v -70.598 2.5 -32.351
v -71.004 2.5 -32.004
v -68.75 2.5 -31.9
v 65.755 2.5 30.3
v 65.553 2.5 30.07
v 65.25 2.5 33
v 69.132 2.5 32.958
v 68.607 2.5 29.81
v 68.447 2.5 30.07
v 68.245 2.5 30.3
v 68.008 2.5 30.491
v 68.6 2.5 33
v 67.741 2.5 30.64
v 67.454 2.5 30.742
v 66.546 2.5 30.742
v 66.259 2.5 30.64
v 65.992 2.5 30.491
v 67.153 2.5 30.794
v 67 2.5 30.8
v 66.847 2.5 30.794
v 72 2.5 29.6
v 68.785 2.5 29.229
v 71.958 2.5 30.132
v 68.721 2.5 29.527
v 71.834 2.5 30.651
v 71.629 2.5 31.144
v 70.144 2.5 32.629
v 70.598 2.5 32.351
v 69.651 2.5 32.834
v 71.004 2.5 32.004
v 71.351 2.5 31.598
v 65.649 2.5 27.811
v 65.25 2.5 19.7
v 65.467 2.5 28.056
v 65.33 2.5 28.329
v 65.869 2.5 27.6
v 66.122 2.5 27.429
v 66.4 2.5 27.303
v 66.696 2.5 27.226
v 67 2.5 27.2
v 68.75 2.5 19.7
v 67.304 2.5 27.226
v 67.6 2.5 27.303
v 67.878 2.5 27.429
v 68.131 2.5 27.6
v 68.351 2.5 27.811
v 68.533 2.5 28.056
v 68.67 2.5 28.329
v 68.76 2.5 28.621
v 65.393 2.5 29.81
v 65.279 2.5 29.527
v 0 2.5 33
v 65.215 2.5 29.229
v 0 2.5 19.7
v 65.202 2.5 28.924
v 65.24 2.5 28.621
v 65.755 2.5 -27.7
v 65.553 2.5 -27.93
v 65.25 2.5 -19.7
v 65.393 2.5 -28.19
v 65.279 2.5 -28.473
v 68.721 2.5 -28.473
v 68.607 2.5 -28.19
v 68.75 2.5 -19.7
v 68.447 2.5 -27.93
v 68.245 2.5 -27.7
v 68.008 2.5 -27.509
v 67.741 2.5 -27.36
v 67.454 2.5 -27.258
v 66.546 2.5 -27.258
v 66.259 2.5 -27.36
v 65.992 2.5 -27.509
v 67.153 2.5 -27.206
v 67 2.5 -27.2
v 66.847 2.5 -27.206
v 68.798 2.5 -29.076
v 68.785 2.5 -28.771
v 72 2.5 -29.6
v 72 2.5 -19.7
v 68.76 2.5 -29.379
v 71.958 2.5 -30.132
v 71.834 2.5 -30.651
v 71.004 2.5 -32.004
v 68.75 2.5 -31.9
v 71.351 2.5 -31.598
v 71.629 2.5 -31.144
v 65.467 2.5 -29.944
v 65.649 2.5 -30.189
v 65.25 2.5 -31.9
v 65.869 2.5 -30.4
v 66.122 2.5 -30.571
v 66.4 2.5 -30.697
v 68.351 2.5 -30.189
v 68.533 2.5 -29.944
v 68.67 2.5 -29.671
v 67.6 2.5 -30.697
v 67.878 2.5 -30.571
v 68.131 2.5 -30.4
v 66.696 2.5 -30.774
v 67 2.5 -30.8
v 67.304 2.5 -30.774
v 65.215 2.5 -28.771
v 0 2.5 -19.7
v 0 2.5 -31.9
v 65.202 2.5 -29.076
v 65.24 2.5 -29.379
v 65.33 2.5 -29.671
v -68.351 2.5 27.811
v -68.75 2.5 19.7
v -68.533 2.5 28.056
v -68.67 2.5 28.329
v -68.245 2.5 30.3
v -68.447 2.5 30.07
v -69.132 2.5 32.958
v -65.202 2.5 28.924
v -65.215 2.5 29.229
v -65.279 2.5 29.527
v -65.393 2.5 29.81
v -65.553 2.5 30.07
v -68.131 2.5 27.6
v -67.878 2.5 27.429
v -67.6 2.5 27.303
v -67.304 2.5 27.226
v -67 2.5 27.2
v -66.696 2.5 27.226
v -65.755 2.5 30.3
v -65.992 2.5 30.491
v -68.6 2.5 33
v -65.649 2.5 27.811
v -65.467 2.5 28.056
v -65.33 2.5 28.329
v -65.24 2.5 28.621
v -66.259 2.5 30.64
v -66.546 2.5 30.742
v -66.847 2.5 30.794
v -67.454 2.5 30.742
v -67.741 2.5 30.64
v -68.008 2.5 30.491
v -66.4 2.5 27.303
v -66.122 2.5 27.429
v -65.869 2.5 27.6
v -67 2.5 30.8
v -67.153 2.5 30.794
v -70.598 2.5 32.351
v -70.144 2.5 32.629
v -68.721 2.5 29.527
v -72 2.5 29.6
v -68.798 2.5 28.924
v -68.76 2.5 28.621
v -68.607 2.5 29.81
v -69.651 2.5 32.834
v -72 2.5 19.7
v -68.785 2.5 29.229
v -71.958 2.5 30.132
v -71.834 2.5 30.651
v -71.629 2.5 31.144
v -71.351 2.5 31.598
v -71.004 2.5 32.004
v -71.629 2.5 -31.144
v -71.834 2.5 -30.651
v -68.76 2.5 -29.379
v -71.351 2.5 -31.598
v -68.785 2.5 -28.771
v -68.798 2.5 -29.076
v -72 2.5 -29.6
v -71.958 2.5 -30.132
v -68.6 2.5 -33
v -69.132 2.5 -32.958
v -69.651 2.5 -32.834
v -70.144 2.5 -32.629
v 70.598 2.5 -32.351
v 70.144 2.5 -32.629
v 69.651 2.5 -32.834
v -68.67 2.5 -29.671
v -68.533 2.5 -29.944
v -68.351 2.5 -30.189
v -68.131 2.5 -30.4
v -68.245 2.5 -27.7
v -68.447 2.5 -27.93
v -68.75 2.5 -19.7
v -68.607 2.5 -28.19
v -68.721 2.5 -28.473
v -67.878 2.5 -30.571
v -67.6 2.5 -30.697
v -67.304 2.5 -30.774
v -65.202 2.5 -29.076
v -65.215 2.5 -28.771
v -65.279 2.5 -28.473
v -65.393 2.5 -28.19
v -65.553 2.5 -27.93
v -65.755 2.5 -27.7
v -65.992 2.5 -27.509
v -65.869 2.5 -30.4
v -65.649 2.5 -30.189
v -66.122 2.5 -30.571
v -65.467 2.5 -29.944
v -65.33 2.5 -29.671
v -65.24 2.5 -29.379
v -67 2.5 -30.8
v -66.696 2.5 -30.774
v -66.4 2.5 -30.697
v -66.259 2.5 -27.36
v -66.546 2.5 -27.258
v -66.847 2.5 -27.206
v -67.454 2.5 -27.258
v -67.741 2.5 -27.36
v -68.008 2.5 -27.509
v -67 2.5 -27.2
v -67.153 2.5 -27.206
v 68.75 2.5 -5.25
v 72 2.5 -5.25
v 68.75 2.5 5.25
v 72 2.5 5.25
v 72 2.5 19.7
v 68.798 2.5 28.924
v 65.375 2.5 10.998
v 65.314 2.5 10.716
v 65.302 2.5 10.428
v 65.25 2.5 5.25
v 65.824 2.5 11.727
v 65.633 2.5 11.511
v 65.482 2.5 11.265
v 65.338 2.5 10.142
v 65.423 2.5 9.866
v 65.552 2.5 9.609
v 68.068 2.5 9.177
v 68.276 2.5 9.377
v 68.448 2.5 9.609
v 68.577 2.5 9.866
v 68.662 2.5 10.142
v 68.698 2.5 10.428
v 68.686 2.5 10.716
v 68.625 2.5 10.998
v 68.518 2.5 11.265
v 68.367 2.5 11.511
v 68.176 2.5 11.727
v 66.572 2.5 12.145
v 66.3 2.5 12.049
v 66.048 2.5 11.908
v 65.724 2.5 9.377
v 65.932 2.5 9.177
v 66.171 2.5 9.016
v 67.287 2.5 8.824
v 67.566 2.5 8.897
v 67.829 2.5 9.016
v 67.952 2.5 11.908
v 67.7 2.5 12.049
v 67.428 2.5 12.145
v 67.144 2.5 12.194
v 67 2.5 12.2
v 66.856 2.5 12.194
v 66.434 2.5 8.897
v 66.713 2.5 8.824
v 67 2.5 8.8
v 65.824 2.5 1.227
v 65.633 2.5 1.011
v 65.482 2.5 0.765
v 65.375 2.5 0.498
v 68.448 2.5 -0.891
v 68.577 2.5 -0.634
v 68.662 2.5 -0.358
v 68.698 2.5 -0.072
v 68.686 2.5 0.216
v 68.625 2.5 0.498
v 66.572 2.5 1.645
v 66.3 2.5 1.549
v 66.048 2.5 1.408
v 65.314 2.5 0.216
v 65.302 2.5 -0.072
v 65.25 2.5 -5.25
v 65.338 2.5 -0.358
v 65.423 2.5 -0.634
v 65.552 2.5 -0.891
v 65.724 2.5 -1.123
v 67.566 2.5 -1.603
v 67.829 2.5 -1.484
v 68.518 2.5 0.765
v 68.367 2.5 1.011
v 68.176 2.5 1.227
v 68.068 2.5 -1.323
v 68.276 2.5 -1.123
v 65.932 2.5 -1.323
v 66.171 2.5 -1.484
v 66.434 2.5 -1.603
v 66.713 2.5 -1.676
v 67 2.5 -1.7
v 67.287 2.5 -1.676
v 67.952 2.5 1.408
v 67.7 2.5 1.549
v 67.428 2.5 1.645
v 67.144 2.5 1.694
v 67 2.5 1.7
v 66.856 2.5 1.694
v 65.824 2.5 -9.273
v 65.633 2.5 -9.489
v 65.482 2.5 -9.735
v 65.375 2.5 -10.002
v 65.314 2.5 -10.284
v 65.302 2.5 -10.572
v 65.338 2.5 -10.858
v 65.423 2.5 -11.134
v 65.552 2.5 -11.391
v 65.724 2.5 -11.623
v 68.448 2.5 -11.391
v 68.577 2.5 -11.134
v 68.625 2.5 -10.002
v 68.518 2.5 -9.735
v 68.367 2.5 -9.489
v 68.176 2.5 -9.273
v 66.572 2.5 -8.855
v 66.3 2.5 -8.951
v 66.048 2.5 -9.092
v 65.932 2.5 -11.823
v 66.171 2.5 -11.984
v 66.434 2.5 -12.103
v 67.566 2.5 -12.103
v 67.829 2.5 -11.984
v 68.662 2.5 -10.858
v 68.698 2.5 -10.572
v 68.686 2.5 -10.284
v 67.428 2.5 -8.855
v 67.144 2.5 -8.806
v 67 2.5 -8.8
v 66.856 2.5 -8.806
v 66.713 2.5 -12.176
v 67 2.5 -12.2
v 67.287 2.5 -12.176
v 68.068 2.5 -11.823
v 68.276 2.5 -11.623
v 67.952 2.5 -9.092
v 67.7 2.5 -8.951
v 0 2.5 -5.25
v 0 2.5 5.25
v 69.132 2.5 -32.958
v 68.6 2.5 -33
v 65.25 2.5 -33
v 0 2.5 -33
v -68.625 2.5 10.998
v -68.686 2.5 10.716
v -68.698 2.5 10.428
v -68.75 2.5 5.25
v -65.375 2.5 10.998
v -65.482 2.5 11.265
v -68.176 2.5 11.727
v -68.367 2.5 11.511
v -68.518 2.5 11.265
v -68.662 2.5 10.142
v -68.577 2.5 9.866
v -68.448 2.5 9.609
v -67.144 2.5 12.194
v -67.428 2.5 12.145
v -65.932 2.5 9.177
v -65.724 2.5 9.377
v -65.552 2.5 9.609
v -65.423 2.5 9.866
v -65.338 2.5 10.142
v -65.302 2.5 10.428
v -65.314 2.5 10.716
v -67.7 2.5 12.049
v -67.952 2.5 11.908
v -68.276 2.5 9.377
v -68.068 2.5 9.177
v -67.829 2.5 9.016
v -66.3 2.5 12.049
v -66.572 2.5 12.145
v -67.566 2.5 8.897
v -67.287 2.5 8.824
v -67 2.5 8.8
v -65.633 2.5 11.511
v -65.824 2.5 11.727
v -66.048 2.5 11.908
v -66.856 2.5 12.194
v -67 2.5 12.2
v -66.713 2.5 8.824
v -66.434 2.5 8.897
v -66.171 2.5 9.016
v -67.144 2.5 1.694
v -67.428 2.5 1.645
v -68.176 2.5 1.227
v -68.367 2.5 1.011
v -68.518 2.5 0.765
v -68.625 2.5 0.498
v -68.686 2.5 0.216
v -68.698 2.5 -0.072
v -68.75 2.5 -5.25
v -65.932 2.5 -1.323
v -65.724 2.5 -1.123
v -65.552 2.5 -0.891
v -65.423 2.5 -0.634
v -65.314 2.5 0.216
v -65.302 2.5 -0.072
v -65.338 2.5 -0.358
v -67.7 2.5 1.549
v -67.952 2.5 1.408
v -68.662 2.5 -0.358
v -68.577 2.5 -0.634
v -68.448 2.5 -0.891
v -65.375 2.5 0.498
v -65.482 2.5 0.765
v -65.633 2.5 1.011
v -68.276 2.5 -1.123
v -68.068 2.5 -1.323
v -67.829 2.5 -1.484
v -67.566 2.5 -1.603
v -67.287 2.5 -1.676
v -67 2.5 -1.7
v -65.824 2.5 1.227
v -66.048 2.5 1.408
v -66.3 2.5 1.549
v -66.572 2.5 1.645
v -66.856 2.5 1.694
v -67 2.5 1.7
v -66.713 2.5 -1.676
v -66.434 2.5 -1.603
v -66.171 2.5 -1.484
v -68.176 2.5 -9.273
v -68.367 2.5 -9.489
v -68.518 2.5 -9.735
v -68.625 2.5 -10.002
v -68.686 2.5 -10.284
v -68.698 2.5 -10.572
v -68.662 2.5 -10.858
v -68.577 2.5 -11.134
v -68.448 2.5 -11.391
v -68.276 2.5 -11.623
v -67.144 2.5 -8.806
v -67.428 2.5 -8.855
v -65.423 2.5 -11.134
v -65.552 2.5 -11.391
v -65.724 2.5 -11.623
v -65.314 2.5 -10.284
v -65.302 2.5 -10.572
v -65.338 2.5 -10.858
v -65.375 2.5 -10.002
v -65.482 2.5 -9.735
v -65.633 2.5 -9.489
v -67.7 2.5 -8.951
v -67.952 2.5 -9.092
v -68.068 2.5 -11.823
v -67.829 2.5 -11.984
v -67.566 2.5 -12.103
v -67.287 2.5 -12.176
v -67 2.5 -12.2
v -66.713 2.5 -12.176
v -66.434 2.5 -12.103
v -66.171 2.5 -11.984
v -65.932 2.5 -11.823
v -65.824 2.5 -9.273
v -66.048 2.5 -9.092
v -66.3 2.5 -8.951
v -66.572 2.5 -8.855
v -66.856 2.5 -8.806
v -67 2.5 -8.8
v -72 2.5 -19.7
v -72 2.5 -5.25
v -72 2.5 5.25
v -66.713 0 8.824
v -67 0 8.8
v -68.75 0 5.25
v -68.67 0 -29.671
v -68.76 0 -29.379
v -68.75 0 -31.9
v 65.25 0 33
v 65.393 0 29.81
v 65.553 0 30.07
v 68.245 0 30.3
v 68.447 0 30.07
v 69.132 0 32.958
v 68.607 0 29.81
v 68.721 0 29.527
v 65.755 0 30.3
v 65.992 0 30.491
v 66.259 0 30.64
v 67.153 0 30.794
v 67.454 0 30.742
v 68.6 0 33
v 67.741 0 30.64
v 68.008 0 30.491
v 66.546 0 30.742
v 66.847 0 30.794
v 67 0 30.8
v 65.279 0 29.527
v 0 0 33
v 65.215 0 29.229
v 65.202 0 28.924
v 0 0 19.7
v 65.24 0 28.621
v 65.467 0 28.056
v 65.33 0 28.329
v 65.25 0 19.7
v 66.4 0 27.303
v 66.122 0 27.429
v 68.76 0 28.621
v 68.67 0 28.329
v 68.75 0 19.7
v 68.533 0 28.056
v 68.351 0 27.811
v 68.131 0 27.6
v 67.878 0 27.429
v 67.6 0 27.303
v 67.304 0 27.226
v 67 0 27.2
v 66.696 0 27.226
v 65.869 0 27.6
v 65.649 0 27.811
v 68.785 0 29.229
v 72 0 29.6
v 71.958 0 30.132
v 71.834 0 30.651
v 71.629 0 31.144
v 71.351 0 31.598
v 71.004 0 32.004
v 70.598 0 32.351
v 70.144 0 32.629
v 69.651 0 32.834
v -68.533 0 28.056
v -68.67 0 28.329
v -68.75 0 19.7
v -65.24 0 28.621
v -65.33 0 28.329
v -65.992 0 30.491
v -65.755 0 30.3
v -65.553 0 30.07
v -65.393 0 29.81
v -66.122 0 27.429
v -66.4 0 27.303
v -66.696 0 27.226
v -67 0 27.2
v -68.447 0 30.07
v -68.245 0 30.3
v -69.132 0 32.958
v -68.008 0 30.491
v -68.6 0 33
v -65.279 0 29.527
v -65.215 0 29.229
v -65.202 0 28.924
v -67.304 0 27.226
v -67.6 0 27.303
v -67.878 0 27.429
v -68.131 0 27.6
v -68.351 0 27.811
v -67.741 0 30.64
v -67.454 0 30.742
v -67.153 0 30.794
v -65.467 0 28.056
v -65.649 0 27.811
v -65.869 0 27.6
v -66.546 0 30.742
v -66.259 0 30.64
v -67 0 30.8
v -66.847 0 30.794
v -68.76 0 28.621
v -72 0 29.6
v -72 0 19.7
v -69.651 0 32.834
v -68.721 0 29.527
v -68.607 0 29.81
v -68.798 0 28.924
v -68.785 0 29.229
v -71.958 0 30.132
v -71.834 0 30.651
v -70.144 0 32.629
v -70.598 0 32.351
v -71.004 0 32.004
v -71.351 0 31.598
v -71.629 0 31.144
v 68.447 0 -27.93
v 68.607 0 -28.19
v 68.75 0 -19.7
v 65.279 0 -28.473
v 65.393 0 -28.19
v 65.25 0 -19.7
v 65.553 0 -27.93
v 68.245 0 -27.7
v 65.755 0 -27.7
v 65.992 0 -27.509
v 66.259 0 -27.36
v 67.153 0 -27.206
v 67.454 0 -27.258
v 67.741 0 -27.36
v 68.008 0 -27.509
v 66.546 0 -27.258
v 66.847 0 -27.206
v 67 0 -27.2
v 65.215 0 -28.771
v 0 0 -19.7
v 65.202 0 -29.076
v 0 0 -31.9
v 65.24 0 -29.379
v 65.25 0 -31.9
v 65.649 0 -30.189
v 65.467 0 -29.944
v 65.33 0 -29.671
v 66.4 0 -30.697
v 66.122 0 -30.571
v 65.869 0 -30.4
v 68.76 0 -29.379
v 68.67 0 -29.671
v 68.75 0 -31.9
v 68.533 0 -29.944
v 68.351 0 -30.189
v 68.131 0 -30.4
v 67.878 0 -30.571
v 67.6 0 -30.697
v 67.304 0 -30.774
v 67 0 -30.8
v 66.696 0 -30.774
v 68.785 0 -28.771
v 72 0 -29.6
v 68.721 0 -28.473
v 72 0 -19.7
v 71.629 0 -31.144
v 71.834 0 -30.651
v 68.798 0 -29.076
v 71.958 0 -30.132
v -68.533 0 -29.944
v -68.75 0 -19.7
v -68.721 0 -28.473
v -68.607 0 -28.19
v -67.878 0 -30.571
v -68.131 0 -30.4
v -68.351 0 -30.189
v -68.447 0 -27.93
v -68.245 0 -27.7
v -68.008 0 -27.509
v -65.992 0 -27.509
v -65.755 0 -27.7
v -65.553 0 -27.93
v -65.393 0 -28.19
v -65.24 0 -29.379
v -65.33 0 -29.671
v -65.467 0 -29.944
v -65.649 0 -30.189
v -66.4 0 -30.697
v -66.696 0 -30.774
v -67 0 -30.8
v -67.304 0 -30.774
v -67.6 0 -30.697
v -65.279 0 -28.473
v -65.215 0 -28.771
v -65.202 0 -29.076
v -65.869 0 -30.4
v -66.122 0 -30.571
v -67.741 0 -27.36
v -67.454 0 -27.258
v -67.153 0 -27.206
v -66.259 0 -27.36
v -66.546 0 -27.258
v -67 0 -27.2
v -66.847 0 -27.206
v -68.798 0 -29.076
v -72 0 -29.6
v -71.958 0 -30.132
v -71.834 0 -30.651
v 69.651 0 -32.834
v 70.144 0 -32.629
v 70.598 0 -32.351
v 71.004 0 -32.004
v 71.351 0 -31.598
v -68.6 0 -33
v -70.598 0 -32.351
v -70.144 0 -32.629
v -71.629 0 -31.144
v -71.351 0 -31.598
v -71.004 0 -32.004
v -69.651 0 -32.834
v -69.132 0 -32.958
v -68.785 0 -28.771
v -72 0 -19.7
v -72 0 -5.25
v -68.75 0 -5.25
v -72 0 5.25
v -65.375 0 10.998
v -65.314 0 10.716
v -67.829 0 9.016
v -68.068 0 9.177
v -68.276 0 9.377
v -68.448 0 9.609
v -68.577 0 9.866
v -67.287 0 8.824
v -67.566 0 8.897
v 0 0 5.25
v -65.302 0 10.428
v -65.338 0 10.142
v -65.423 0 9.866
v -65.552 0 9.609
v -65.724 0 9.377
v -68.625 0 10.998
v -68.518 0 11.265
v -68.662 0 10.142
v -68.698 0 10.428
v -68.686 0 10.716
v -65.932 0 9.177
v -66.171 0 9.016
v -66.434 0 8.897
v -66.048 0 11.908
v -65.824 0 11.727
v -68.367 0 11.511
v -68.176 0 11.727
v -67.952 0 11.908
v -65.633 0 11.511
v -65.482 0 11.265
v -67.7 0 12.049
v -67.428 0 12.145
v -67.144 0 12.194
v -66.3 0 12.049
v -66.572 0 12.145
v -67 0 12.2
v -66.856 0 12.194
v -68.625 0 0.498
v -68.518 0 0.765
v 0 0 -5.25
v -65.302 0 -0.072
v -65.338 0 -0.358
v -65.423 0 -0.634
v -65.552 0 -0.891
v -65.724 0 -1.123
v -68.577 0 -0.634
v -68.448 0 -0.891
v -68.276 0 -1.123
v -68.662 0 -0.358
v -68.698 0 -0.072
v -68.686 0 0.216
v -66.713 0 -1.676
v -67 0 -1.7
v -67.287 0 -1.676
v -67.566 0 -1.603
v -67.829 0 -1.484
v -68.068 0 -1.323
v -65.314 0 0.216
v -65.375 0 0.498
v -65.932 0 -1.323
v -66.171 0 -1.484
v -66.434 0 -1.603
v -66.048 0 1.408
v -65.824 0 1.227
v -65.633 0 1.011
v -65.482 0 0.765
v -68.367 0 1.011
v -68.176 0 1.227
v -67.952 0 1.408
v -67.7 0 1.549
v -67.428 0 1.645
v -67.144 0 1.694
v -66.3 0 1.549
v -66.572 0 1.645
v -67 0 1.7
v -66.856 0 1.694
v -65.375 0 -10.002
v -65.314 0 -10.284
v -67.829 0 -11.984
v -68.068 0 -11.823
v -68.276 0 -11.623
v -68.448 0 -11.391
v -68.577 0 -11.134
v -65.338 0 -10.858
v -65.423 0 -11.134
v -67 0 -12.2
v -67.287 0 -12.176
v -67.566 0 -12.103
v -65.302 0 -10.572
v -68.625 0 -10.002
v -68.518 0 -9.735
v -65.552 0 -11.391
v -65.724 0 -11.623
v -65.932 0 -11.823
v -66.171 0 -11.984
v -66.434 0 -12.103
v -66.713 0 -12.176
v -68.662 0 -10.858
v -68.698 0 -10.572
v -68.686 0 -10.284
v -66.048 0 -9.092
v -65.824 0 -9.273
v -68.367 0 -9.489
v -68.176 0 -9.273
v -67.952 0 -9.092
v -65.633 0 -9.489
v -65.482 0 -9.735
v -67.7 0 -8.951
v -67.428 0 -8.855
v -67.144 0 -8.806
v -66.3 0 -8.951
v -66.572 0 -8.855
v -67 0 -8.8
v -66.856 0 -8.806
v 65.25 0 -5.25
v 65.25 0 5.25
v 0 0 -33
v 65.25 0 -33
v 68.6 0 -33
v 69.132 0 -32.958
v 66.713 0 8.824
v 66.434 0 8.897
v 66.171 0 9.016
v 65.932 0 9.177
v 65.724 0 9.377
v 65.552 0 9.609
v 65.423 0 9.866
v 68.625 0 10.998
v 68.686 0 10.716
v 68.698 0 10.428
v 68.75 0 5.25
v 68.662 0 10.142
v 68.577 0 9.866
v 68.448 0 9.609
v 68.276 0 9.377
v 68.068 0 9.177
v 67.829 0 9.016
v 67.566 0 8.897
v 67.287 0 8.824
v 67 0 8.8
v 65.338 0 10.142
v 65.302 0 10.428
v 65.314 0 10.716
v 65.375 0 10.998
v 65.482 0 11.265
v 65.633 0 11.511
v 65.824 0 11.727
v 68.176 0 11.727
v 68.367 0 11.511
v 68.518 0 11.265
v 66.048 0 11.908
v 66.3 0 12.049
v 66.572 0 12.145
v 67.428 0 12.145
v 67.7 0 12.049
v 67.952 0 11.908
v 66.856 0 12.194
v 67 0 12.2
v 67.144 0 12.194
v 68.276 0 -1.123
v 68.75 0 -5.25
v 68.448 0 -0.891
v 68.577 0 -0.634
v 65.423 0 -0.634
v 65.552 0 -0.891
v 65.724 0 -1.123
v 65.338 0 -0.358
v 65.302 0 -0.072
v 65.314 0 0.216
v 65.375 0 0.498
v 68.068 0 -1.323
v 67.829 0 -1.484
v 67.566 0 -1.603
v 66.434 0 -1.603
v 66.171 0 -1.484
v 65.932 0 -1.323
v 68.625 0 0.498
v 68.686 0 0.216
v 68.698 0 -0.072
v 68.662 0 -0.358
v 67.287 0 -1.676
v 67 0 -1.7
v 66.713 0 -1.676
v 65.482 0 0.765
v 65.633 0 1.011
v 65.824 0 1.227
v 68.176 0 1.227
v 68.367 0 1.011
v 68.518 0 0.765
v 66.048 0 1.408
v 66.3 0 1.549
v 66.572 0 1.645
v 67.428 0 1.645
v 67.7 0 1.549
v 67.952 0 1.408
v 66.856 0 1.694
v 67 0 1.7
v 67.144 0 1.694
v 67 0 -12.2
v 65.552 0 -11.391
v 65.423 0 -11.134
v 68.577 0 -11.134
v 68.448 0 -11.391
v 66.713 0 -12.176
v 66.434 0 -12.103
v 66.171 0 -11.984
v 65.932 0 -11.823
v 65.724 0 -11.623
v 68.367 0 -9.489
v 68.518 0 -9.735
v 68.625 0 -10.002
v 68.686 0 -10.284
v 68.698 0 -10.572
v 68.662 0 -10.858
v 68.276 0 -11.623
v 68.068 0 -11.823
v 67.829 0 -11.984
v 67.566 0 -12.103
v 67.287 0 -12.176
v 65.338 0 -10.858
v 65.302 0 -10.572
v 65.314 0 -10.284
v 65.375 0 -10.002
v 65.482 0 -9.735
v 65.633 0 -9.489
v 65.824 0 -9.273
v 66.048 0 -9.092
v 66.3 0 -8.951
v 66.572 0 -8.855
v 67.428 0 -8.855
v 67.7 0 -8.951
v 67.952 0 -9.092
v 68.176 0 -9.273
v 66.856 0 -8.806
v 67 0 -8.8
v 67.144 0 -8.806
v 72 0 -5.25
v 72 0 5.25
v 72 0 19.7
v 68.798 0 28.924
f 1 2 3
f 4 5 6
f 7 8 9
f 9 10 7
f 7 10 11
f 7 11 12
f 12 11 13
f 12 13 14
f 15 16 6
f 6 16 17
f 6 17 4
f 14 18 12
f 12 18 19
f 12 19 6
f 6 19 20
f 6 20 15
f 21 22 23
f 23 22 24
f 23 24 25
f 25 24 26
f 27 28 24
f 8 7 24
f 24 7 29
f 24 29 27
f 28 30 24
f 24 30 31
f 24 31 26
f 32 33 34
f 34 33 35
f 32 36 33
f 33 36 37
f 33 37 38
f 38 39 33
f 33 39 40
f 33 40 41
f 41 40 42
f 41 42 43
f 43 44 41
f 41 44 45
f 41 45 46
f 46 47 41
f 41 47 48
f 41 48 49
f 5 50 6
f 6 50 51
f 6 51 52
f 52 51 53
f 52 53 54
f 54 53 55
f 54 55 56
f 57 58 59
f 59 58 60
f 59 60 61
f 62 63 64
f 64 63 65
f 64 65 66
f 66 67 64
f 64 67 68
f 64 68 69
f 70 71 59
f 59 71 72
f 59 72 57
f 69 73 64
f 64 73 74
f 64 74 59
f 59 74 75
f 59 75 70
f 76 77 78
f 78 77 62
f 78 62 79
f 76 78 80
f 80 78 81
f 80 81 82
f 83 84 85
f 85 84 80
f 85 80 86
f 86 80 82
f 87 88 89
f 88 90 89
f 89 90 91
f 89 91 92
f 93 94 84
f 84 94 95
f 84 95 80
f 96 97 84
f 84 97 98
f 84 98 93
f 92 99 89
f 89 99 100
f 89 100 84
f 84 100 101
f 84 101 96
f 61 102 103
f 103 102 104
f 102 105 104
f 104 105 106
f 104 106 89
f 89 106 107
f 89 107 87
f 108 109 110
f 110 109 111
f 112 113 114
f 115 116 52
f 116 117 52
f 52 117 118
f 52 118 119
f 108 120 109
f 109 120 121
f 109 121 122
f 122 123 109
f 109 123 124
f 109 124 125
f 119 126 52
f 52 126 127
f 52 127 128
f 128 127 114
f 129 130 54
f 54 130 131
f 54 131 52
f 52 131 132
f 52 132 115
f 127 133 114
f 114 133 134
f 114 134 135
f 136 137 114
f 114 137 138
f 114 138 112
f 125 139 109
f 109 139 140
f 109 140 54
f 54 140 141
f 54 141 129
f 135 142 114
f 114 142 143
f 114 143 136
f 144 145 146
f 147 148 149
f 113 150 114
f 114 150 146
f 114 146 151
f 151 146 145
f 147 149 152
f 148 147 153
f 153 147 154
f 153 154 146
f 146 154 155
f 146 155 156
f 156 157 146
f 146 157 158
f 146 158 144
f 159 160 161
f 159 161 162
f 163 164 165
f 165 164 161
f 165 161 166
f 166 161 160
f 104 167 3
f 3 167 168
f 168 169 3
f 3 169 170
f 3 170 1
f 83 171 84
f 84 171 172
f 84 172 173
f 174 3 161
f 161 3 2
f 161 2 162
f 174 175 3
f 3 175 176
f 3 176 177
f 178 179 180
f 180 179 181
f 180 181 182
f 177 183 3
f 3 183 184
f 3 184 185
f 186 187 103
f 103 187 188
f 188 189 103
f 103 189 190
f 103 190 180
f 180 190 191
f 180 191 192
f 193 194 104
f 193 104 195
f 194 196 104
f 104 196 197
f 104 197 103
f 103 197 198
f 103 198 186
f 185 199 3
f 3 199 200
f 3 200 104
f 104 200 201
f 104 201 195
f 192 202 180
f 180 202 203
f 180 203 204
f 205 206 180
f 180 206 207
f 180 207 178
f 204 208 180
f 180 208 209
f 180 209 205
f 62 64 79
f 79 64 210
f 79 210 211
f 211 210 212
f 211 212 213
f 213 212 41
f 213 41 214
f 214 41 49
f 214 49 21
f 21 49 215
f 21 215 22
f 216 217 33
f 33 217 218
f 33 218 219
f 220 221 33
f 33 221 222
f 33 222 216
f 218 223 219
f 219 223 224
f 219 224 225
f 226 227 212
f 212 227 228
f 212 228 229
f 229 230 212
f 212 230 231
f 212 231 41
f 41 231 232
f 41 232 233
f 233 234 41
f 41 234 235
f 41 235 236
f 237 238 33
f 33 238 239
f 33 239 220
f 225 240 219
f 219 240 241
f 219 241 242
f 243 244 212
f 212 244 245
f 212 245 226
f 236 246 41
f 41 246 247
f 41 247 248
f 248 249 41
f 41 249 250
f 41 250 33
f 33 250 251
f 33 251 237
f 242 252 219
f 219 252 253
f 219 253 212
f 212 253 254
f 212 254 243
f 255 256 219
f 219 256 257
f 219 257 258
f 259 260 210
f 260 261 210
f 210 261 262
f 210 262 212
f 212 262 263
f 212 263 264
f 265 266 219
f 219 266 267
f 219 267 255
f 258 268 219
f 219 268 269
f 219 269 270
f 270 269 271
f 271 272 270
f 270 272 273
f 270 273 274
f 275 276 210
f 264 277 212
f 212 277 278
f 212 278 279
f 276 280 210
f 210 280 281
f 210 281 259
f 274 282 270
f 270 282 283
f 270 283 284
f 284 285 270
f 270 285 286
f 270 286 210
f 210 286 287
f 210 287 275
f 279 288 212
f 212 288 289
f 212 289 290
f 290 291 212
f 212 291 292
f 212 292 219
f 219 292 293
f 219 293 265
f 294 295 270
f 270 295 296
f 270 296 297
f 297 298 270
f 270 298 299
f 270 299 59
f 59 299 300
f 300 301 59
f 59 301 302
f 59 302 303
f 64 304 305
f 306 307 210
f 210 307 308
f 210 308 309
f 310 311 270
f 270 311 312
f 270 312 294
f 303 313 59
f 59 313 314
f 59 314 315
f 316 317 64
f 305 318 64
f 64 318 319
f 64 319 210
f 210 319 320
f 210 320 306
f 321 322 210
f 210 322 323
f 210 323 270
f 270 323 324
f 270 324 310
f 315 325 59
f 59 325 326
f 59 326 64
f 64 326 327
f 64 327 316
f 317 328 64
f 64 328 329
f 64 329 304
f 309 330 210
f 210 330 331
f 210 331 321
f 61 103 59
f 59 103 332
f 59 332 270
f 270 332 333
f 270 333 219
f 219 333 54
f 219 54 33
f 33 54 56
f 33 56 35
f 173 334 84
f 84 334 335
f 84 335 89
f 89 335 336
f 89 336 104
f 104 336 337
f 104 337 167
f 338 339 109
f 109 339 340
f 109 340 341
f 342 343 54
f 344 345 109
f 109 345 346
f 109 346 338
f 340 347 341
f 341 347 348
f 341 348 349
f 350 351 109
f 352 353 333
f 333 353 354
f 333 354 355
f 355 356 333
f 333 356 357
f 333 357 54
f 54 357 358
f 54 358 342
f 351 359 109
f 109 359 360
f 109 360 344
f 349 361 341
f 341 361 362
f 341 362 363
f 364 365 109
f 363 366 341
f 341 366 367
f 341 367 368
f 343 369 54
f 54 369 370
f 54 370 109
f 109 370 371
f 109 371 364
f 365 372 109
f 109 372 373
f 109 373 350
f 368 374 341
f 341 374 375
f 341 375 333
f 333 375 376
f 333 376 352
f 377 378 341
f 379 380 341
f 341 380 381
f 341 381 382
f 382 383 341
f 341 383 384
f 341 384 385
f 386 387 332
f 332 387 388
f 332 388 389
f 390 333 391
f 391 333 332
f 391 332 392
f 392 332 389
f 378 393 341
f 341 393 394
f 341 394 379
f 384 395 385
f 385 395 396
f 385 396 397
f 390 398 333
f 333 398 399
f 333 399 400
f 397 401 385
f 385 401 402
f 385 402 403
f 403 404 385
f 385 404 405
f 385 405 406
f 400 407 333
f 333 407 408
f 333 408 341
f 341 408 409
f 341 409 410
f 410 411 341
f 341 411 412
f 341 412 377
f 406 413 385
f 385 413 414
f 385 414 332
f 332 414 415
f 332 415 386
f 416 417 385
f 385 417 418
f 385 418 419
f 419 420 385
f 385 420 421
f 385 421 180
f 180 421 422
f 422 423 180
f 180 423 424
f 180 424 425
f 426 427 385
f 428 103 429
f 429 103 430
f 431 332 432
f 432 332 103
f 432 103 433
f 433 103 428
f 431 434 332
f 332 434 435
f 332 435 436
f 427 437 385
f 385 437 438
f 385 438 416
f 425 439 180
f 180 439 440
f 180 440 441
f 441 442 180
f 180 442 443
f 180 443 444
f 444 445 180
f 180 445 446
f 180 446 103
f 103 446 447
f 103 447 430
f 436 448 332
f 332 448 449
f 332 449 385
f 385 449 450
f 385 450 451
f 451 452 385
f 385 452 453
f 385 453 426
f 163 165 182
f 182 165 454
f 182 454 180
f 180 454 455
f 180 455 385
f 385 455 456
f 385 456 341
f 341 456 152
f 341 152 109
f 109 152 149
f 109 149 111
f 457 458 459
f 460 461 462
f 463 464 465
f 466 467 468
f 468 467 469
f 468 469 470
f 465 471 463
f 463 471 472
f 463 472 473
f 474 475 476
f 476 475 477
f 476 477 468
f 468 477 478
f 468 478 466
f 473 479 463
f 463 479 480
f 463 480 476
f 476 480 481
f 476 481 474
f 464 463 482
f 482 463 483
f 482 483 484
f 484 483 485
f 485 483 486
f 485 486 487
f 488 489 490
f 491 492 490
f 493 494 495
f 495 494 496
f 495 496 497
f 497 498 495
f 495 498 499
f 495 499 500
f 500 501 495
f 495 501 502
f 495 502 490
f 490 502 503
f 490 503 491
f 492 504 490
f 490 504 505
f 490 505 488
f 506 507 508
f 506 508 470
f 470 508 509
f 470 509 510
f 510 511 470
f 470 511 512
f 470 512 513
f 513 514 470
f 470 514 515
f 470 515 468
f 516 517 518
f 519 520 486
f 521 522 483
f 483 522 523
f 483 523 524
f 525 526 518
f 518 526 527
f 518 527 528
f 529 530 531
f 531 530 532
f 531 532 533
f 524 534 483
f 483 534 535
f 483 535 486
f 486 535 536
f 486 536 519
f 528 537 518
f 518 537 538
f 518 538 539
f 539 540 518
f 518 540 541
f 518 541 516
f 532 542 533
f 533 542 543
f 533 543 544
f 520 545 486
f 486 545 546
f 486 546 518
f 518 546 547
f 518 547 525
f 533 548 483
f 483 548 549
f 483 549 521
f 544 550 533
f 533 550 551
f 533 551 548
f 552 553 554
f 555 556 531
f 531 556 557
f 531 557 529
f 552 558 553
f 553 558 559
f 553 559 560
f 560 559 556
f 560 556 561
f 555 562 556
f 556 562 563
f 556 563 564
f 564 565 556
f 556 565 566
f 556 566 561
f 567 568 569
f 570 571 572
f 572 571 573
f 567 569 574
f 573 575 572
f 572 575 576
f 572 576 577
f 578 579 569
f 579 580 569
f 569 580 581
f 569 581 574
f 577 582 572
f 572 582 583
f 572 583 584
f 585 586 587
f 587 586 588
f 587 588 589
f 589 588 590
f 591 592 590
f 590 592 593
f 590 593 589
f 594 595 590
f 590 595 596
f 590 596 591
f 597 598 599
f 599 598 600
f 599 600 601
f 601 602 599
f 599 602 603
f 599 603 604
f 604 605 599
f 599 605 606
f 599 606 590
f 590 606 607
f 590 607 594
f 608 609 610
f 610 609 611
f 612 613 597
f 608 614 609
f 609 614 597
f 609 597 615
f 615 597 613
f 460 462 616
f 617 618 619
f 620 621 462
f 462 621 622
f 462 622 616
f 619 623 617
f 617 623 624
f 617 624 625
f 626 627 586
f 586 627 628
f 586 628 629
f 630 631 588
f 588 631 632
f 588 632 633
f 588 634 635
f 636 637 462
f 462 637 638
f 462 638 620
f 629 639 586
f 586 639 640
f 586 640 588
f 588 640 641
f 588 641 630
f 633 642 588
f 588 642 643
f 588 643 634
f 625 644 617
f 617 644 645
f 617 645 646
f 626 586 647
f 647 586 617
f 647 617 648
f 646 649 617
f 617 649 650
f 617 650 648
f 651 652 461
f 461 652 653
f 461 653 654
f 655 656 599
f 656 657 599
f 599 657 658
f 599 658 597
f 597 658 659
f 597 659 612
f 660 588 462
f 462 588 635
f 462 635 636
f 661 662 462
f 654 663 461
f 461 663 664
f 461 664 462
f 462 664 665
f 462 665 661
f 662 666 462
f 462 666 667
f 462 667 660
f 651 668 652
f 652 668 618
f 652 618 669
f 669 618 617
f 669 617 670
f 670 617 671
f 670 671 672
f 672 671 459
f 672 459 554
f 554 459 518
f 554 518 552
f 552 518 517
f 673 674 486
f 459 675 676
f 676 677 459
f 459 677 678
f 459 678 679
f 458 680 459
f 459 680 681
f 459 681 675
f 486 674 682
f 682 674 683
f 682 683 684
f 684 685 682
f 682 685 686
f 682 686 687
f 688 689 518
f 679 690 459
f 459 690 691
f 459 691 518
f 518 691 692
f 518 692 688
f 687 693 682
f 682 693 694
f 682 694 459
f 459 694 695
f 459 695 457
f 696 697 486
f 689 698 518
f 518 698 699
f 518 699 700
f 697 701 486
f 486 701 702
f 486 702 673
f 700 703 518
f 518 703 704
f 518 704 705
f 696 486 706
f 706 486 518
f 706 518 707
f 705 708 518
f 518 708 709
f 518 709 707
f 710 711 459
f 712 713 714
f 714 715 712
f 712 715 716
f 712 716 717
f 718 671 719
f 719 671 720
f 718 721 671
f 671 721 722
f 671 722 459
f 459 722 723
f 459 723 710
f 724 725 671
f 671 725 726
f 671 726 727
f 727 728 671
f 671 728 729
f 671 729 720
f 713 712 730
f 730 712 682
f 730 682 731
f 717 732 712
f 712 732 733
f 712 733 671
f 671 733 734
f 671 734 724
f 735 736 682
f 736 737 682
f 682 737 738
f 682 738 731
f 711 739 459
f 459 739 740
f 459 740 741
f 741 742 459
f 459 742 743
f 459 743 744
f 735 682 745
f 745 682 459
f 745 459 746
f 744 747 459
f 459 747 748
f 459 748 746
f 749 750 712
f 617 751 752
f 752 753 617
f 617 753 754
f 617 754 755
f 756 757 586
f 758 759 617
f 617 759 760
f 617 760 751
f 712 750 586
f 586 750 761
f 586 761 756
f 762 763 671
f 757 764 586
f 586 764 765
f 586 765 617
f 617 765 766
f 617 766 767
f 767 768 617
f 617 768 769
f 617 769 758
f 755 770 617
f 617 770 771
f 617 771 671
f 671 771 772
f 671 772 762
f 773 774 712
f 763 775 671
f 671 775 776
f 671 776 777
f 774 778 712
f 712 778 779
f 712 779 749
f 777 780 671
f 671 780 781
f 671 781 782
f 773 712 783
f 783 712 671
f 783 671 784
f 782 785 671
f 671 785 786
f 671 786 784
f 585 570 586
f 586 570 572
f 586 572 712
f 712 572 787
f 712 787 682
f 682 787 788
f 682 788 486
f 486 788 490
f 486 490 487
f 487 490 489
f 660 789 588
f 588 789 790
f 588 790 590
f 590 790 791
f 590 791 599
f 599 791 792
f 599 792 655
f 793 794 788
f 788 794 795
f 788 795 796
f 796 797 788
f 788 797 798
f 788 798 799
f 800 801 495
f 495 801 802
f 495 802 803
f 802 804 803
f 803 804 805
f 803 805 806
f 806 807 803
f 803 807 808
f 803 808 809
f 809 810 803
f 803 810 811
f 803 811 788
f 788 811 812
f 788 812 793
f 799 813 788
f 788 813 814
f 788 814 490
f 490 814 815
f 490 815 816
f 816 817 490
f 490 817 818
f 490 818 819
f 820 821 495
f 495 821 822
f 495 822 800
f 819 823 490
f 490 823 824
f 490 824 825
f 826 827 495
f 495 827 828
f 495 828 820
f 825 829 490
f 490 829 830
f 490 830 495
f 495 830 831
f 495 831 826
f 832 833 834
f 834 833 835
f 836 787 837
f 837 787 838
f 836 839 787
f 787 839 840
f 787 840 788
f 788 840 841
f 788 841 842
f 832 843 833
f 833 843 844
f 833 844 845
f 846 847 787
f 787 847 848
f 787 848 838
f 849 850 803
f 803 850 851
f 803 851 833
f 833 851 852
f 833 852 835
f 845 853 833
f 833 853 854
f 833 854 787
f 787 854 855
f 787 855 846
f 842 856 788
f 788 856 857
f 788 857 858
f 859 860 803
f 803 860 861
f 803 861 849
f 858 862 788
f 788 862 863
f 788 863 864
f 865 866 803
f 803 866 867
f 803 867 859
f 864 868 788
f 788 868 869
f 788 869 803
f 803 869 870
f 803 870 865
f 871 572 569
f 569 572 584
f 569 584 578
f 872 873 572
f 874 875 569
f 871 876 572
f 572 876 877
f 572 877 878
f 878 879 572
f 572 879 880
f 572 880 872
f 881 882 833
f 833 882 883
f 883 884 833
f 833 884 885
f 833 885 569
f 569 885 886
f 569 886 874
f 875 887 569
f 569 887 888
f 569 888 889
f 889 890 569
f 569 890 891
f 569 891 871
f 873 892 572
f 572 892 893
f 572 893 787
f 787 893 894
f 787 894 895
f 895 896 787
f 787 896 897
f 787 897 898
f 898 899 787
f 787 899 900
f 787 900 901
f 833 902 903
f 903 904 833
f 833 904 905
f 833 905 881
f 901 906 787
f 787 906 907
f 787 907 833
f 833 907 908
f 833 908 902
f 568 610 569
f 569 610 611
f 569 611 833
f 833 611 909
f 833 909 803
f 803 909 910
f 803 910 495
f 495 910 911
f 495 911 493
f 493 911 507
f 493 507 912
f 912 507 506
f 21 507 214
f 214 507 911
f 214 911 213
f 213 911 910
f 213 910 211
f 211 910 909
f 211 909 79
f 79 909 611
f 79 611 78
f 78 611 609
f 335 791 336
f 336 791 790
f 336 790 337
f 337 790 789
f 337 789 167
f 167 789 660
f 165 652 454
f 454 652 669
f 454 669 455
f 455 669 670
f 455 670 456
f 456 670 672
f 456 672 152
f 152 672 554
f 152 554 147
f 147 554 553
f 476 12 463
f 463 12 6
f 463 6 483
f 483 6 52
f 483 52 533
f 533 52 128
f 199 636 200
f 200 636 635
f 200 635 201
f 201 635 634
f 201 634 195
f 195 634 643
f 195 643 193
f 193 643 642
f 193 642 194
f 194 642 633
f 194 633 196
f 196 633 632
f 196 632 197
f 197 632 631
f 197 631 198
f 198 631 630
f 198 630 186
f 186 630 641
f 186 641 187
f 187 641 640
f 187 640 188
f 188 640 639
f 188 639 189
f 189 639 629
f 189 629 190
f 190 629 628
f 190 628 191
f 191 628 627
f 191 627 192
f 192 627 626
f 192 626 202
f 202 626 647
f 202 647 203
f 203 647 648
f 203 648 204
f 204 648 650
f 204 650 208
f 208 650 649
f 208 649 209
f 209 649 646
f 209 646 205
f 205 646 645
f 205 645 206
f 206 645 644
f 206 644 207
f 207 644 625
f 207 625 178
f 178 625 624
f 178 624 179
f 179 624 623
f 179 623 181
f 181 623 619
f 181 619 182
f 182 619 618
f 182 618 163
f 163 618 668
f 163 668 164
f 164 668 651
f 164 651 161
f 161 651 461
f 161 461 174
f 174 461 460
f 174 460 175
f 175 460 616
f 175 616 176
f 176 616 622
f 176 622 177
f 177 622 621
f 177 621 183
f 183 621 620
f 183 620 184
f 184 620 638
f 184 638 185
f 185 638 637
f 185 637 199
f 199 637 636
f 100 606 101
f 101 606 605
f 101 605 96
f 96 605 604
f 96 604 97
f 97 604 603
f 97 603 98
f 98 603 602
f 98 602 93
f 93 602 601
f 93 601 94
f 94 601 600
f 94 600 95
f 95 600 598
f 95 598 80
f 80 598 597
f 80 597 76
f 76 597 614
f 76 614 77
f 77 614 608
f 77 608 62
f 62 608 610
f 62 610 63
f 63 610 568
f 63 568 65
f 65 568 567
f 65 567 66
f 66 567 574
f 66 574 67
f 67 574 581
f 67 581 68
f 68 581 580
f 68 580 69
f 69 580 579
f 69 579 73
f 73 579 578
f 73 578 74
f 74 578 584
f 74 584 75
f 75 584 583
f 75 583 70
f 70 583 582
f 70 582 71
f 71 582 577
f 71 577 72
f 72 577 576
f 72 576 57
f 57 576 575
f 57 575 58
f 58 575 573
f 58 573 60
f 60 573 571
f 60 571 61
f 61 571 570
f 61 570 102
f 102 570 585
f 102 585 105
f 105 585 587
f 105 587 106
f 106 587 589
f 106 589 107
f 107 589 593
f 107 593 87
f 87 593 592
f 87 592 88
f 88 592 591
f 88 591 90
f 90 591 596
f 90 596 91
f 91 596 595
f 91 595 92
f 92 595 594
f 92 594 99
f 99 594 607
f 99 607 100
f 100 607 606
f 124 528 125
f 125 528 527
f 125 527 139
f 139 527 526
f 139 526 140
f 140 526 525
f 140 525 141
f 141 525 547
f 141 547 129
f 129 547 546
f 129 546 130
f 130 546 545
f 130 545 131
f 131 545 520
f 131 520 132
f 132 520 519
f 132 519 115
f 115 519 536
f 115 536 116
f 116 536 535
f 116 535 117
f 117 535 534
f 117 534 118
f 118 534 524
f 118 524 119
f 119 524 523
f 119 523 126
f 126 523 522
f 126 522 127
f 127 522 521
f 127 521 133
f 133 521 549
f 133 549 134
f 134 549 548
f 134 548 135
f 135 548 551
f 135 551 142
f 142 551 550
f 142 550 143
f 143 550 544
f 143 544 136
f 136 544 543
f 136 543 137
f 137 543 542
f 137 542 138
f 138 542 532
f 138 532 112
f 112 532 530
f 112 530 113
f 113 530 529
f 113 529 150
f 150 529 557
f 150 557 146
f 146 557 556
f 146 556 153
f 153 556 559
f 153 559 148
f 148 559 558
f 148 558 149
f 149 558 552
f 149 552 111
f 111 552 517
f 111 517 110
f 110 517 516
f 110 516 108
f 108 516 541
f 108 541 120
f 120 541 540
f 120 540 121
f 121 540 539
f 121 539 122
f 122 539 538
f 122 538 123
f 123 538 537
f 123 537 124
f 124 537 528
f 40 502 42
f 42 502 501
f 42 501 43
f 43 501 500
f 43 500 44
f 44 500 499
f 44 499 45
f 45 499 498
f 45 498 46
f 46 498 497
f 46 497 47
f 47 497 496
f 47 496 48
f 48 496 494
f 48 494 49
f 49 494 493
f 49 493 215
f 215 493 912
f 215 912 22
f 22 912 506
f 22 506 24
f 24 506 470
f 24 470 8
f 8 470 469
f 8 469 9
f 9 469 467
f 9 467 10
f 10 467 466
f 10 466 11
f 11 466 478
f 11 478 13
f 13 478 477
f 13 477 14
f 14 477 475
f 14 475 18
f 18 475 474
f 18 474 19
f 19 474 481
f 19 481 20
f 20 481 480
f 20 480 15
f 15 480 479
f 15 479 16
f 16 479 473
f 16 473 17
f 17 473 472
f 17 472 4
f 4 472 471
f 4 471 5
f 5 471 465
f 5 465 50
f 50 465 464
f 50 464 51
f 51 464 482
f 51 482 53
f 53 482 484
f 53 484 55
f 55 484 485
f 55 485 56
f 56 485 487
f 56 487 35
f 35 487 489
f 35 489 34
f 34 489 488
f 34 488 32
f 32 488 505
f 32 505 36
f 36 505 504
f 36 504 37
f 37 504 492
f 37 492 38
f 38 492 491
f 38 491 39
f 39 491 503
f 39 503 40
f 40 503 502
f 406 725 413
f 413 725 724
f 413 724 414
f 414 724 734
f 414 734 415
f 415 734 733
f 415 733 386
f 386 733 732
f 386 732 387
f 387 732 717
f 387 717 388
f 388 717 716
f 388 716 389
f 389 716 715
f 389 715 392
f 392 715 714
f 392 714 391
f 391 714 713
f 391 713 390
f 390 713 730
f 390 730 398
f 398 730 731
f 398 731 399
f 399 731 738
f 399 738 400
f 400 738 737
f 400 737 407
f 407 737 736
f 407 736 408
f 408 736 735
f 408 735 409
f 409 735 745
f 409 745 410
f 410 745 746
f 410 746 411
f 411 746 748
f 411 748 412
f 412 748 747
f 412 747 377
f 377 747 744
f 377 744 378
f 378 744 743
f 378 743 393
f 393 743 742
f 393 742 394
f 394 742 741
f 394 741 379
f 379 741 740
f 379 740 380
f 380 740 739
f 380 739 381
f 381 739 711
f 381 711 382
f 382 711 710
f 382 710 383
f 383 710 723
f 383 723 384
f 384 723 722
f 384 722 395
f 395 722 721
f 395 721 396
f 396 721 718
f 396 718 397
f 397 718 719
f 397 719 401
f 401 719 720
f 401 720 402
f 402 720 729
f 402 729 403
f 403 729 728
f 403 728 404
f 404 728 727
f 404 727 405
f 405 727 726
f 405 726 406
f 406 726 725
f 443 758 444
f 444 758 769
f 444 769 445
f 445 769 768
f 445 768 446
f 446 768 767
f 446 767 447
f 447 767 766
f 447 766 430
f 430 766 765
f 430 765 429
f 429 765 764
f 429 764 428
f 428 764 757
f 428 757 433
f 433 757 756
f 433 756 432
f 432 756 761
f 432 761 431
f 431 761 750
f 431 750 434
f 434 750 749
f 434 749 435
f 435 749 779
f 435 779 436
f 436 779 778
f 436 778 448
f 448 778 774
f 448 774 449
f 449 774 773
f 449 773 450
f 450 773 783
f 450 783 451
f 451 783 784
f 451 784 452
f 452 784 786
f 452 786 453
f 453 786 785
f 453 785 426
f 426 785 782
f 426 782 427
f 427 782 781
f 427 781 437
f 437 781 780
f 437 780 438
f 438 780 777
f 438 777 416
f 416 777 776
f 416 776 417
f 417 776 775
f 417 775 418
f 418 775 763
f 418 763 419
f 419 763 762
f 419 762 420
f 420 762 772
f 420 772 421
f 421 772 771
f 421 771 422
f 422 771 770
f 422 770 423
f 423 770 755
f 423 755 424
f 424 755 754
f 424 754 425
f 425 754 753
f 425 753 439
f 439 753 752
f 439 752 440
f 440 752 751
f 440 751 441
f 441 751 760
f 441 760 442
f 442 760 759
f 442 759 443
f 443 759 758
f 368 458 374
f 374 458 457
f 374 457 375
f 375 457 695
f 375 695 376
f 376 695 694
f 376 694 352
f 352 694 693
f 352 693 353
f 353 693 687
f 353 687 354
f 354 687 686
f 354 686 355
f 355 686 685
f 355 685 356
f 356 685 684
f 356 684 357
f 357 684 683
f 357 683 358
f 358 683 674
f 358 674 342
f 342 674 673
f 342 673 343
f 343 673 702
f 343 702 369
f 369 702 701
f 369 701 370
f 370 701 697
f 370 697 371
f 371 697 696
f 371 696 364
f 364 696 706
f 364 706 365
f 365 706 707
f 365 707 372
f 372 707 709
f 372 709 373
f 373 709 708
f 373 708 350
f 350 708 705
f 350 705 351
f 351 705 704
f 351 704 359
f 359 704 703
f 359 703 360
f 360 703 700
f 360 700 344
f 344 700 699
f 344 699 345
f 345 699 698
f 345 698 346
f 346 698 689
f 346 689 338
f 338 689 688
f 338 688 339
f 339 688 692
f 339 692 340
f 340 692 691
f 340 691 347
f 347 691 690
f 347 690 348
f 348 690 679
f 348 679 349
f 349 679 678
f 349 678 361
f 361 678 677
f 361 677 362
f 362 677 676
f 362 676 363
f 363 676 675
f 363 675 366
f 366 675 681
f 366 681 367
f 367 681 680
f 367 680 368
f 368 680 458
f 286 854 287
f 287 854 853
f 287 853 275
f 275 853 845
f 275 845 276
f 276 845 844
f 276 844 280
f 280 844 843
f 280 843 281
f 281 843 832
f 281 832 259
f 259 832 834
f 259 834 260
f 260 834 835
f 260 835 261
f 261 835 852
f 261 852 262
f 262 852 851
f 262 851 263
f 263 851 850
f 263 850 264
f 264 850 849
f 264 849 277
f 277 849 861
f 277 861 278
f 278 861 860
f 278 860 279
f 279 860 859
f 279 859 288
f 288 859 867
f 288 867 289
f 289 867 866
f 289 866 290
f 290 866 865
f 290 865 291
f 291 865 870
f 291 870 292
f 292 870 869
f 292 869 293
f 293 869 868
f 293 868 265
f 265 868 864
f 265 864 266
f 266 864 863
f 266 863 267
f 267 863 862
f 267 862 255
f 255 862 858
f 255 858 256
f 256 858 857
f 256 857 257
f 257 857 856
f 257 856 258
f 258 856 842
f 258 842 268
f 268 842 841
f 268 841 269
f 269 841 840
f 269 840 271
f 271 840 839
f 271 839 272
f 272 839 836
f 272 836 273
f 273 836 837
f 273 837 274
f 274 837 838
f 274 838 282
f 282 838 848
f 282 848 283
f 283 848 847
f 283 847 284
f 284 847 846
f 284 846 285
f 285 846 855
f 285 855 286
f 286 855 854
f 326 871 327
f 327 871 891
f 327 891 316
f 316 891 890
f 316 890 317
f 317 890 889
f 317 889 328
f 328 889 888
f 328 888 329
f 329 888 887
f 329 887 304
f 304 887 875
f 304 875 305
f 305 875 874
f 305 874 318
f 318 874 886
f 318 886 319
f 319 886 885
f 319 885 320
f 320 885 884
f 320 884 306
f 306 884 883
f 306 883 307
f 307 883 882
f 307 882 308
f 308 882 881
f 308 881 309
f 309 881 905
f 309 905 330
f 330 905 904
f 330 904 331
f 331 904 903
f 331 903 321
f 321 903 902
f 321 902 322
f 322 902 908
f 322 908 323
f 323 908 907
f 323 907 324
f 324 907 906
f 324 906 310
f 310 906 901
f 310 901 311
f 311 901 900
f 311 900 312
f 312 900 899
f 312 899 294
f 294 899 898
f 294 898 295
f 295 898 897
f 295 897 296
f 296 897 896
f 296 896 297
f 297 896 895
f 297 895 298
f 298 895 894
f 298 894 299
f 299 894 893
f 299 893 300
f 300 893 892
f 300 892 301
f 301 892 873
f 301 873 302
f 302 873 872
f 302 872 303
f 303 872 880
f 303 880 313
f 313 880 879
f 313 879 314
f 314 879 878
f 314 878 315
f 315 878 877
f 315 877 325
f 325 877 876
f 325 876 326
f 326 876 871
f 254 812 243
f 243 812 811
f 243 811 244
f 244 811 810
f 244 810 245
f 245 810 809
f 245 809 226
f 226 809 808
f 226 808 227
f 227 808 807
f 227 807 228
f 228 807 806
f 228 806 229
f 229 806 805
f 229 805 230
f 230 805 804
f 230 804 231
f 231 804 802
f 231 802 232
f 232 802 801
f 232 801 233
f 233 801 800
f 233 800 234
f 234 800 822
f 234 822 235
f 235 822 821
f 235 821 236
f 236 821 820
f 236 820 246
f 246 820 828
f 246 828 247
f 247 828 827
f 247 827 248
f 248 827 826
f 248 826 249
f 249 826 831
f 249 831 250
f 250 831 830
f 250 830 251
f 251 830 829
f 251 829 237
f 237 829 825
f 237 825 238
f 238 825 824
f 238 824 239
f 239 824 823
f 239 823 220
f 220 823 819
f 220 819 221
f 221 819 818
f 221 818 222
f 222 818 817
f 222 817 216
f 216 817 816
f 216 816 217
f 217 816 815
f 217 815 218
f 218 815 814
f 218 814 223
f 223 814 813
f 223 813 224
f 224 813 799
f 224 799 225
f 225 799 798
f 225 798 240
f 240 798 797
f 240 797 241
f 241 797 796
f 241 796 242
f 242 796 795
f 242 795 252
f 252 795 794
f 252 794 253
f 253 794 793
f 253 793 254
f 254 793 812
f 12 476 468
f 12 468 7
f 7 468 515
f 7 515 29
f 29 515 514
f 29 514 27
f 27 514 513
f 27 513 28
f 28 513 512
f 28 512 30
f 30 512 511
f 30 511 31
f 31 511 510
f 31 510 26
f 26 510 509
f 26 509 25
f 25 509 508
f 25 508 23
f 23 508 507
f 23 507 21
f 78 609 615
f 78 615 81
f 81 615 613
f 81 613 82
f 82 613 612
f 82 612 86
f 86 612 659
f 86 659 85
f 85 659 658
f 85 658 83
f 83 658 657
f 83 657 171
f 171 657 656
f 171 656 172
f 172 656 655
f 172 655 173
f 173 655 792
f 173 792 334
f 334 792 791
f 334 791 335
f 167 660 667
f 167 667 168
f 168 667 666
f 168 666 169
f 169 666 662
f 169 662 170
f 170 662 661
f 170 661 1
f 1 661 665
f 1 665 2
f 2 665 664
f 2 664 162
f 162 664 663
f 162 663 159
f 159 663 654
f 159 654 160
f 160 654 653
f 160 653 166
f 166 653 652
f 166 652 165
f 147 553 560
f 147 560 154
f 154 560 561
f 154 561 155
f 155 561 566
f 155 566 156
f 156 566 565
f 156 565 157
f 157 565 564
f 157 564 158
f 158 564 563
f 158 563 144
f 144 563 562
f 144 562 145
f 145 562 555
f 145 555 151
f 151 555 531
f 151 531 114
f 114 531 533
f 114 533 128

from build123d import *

# Parameters (mm, degrees)
SKETCH_1_W      = 144
SKETCH_1_H      = 66
SKETCH_1_R      = 1.8
SKETCH_1_R_2    = 1.7
EXTRUDE_1_DEPTH = 2.5
FILLET_1_R      = 3.4


with BuildPart() as part:
    # 草图1 → 凸台-拉伸1 (new body)
    with BuildSketch(Plane(origin=(0, 0, 0), x_dir=(1, 0, 0), z_dir=(0, 1, 0))):
        Rectangle(SKETCH_1_W, SKETCH_1_H)
        with Locations(Location((-67, 29, 0), (0, 0, 270))):
            Circle(SKETCH_1_R, mode=Mode.SUBTRACT)
        with Locations(Location((67, 29, 0), (0, 0, 270))):
            Circle(SKETCH_1_R, mode=Mode.SUBTRACT)
        with Locations(Location((-67, -29, 0), (0, 0, 270))):
            Circle(SKETCH_1_R, mode=Mode.SUBTRACT)
        with Locations(Location((67, -29, 0), (0, 0, 270))):
            Circle(SKETCH_1_R, mode=Mode.SUBTRACT)
        with Locations(Location((-67, 0, 0), (0, 0, 270))):
            Circle(SKETCH_1_R_2, mode=Mode.SUBTRACT)
        with Locations(Location((-67, 10.5, 0), (0, 0, 270))):
            Circle(SKETCH_1_R_2, mode=Mode.SUBTRACT)
        with Locations(Location((-67, -10.5, 0), (0, 0, 270))):
            Circle(SKETCH_1_R_2, mode=Mode.SUBTRACT)
        with Locations(Location((67, 0, 0), (0, 0, 270))):
            Circle(SKETCH_1_R_2, mode=Mode.SUBTRACT)
        with Locations(Location((67, 10.5, 0), (0, 0, 270))):
            Circle(SKETCH_1_R_2, mode=Mode.SUBTRACT)
        with Locations(Location((67, -10.5, 0), (0, 0, 270))):
            Circle(SKETCH_1_R_2, mode=Mode.SUBTRACT)
    extrude(amount=EXTRUDE_1_DEPTH)

    # 圆角1
    fillet_1_edges = [part.edges().sort_by_distance(p)[0] for p in [
        (72, 1.25, 33),
        (-72, 1.25, 33),
        (-72, 1.25, -33),
        (72, 1.25, -33),
    ]]
    fillet(fillet_1_edges, radius=FILLET_1_R)


solid = part.part
